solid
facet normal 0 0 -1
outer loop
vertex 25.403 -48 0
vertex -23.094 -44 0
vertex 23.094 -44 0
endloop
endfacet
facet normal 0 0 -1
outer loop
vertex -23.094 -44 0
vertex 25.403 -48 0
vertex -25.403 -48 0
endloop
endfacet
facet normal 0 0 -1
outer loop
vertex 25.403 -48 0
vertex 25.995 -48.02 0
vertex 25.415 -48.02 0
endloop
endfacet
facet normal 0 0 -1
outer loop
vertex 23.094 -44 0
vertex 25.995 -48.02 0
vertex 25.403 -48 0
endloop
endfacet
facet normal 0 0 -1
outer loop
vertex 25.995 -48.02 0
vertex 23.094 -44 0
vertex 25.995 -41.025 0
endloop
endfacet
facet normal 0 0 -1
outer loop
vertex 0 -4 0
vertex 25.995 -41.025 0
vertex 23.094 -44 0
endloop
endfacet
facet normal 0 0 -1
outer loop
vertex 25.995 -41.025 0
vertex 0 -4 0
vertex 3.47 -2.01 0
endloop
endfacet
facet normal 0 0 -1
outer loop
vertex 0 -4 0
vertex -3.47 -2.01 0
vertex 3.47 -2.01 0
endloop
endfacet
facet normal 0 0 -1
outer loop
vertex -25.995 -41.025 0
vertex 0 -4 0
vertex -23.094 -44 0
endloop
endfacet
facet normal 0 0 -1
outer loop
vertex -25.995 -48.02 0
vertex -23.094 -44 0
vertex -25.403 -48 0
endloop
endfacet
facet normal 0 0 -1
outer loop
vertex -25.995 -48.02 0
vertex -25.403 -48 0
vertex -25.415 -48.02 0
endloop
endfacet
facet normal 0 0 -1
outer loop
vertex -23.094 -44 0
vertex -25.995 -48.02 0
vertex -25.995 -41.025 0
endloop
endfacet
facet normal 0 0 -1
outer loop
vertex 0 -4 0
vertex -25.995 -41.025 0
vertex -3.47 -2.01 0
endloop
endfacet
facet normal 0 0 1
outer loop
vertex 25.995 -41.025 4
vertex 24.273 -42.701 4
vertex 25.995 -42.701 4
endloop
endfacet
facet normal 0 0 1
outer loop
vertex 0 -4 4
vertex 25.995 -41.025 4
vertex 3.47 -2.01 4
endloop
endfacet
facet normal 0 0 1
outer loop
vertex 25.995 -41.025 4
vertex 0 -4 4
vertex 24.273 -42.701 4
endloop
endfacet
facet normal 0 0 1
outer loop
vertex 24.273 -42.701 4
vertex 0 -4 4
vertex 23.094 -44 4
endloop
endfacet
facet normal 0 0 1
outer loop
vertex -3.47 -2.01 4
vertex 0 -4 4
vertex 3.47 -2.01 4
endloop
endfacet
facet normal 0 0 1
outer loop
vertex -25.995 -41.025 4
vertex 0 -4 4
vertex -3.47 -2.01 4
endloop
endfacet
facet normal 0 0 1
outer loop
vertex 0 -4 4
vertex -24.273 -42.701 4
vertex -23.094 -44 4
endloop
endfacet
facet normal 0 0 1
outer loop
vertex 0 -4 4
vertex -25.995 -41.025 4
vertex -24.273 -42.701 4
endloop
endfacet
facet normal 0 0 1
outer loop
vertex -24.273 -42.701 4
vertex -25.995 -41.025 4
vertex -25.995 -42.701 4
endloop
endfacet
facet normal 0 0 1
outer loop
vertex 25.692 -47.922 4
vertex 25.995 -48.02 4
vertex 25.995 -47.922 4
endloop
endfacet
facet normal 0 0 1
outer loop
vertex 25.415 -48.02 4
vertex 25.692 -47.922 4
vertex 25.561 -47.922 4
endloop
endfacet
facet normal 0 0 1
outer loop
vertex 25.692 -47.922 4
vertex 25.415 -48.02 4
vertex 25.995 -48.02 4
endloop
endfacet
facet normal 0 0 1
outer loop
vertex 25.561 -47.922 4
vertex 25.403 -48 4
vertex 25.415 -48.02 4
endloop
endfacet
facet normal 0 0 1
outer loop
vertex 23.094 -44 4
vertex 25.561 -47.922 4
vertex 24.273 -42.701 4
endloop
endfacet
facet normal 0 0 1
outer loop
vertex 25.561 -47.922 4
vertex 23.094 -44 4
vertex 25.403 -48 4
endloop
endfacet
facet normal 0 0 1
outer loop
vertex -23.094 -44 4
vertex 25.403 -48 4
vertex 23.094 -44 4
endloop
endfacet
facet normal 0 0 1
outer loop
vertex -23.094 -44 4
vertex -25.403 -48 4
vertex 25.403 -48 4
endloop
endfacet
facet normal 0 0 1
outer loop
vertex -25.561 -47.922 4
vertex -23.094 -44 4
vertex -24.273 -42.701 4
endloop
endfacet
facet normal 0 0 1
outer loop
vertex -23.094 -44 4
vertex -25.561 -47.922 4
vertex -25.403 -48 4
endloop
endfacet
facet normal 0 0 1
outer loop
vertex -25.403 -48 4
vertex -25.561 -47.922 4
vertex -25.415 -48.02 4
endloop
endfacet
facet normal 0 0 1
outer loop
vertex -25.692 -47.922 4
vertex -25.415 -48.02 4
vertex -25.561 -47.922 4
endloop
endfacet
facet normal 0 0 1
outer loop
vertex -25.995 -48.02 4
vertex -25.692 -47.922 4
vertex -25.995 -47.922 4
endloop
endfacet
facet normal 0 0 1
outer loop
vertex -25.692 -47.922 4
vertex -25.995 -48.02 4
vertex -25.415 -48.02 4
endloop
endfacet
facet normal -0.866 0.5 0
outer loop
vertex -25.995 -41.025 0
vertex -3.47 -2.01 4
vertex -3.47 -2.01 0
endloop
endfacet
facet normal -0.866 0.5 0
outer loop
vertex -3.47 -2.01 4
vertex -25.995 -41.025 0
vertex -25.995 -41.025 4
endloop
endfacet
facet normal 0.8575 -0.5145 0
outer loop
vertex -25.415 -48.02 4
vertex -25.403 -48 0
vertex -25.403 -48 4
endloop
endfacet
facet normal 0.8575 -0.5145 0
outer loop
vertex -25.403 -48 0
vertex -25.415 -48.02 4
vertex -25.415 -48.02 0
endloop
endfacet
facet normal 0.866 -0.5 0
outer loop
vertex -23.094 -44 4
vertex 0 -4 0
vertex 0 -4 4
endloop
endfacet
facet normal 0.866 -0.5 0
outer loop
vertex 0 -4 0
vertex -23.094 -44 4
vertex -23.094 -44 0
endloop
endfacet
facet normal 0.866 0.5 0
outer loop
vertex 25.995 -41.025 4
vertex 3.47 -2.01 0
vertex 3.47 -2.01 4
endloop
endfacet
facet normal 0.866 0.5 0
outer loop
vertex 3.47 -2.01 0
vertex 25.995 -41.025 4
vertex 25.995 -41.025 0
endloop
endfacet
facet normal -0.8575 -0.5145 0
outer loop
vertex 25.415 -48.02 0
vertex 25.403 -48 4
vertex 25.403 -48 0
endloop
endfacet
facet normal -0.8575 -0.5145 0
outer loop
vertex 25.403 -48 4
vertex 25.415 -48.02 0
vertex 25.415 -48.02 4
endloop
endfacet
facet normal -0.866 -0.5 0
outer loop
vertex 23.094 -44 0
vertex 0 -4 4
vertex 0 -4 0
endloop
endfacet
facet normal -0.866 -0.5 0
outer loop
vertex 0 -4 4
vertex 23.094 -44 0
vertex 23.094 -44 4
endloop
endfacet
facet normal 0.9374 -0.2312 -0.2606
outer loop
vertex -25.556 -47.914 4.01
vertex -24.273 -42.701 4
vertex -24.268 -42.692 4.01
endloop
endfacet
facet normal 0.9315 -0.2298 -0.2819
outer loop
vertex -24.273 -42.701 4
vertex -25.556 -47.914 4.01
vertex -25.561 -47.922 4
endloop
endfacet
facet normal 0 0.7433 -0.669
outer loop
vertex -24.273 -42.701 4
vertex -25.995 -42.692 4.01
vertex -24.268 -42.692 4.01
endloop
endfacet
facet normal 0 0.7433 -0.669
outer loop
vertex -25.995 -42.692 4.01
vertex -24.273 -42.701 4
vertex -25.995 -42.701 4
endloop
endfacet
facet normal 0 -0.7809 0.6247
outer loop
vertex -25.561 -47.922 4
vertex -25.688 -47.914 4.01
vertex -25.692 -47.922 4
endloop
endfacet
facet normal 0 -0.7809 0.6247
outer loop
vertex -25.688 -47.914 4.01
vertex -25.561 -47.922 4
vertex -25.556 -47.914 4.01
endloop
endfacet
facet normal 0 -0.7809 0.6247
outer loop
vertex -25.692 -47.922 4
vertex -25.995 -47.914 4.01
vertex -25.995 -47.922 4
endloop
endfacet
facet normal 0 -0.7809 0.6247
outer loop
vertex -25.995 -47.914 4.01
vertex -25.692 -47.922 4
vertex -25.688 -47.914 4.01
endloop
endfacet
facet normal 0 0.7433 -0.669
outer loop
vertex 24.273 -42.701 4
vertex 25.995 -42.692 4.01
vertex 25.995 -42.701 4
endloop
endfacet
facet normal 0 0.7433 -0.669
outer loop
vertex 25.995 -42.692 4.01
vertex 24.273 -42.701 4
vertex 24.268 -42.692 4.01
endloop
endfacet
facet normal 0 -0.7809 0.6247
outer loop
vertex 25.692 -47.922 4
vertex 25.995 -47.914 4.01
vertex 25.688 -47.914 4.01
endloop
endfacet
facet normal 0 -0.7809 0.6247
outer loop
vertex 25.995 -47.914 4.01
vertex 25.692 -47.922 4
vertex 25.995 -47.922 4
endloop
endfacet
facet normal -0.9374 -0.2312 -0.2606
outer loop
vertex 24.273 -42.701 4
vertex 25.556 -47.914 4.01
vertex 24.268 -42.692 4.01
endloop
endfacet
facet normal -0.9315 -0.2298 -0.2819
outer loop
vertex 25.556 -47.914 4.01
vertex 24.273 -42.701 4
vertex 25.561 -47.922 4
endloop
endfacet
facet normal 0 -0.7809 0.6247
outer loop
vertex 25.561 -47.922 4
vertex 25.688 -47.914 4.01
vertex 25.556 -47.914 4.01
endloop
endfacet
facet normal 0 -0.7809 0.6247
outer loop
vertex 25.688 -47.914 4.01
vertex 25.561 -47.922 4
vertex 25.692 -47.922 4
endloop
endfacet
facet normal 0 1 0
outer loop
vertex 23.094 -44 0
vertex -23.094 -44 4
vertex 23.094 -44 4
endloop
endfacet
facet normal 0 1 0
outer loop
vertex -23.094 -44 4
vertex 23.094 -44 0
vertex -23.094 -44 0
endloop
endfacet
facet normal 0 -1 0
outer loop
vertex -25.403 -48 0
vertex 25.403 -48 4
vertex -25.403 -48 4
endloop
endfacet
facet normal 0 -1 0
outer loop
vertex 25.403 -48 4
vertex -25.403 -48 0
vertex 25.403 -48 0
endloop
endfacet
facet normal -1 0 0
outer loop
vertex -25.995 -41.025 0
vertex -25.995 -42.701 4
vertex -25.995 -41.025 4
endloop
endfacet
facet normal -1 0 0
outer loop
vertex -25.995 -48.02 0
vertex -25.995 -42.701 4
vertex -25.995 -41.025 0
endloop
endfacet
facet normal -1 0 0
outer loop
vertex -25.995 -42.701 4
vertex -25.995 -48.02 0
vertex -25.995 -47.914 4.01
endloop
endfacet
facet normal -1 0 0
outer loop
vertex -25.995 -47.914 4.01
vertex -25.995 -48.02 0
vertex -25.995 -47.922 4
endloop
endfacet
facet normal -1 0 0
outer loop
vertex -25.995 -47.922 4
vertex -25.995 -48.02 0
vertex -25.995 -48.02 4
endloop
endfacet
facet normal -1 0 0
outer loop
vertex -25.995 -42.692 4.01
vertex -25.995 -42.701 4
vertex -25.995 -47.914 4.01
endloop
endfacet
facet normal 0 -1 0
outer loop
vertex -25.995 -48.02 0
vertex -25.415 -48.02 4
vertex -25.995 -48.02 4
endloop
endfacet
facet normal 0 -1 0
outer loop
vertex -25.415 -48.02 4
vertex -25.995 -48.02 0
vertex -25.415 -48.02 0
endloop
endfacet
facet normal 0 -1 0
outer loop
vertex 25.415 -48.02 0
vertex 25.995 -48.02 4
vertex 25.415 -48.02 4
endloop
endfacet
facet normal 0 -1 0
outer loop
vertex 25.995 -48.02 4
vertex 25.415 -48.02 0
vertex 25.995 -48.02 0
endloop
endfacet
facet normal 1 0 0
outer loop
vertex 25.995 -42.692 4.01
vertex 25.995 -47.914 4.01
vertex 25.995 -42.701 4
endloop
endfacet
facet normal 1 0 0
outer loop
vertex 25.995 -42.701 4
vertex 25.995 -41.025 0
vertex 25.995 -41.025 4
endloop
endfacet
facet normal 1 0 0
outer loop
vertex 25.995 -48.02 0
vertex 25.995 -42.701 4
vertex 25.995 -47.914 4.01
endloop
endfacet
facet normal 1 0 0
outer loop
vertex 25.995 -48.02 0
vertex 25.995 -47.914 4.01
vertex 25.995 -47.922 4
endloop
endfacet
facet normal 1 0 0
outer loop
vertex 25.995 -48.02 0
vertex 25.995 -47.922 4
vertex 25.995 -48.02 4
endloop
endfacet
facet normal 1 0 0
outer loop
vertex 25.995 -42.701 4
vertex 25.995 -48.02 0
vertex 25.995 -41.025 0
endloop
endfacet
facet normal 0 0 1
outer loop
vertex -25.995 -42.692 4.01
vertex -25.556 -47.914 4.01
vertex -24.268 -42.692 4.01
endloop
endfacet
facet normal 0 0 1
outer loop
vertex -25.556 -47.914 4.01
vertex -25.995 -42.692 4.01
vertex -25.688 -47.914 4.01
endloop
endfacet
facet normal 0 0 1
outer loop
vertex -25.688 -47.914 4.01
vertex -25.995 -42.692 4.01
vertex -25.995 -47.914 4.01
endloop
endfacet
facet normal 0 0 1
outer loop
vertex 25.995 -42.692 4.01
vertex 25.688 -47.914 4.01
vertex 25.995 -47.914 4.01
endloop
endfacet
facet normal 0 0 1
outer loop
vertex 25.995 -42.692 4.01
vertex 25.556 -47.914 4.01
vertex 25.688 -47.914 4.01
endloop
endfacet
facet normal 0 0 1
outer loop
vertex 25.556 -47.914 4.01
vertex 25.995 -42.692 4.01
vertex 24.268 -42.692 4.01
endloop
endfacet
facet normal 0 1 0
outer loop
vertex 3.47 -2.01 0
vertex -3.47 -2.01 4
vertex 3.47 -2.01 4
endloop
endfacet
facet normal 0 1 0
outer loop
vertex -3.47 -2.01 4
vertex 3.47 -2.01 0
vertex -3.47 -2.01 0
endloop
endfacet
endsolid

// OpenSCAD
// file: ../lib/torus.scad
module torus(
outer_diameter,
circle_diameter
) {
    rotate_extrude(convexity = 4)
    translate([(outer_diameter-circle_diameter)/2, 0, 0])
    circle(d=circle_diameter, $fn=$fn/3);
}
// file: ../rocket-bottom.scad
use <lib/centered_cube.scad>
use <lib/torus.scad>

translate([0,0,-1.1])
ccube([93,93,1]);

module nozzle() {
    color([.2,.2,.2])
    cylinder(d1=40, d2=16+(40-16)*((40-16)/40), h=16);

    color([.35,.35,.35])
    translate([0,0,16])
    torus(34, 5);

    color([.5,.5,.5])
    translate([0,0,16])
    cylinder(d1=16+(40-16)*((40-16)/40), d2=16, h=40-16);
}


module nozzle_and_fin() {
    nozzle();

    color([.8, .8, .8])
    translate([0,0,41.6]) {
        intersection() {
            cylinder(d=38, h=16);
            translate([0,0,-1])
            ccube([50,50,20], centered=[0,1,0]);
        }
        rotate([0,0,180])
        ccube([4,38,16], centered=[0,1,0]);
    }
    
    color([0,0,0])
    translate([0,0,40])
    ccube([16, 16, 8], centered=[1,1,0]);


    // fin mount
    color([1,1,1])
    translate([0,0,57.6])
    resize([38,32,64])
    cylinder(d1=32, d2=16, h=64);

    // fin
    color([1,1,1])
    translate([18,0,65.6])
    rotate([90,0,0])
    translate([0,0,-0.8])
    linear_extrude(height=1.6) {
        polygon(points=[
            [0,0],
            [3,-8],
            [32, -22],
            [32, -6],
            [0, 24]
        ]);
    }
}

module rocket_bottom() {
    nozzle();
    color([.8, .8, .8])
    translate([0,0,40])
    cylinder(d=16, h=18);

    for (r = [0:1:3]) {
        rotate([0,0,r*90])
        translate([42.5,0,0])
        nozzle_and_fin();
    }
    
    // bottom of fuel tank
    color([1,1,1])
    translate([0,0,58])
    cylinder(d=80, h=32);
}

rocket_bottom();
// file: ../lib/lego_brick_builder.scad
/*

 Basic Lego brick builder module for OpenScad by Jorg Janssen 2013 (CC BY-NC 3.0) 
 To use this in your own projects add:

 use <path_to_this_file/lego_brick_builder.scad>
 brick (length, width, height [,smooth]);

 Length and width are in standard lego brick dimensions. 
 Height is in flat brick heights, so for a normal lego brick height = 3.
 Add optional smooth = true for a brick without studs. 
 Use height = 0 to just put studs/knobs on top of other things.

 */
$fn = 50;
 
 // this is it:
brick(5,3,3);


// and this is how it's done:

FLU = 1.6; // Fundamental Lego Unit = 1.6 mm

BRICK_WIDTH = 5*FLU; // basic brick width
BRICK_HEIGHT = 6*FLU; // basic brick height
PLATE_HEIGHT = 2*FLU; // basic plate height
WALL_THICKNESS = FLU; // outer wall of the brick
STUD_RADIUS = 1.5*FLU; // studs are the small cylinders on top of the brick with the lego logo ('nopje' in Dutch)
STUD_HEIGHT = FLU; 
ANTI_STUD_RADIUS = 0.5*4.07*FLU;  // an anti stud is the hollow cylinder inside bricks that have length > 1 and width > 1
PIN_RADIUS = FLU; // a pin is the small cylinder inside bricks that have length = 1 or width = 1
SUPPORT_THICKNESS = 0.254; // support is the thin surface between anti studs, pins and walls, your printer might not print this thin, try thicker!
EDGE = 0.254; // this is the width and height of the bottom line edge of smooth bricks
CORRECTION = 0.1; // addition to each size, to make sure all parts connect by moving them a little inside each other

module brick(length = 4, width = 2, height = 3, smooth = false){

	// brick shell
	difference(){
		cube(size = [length*BRICK_WIDTH,width*BRICK_WIDTH,height*PLATE_HEIGHT]);
		translate([WALL_THICKNESS,WALL_THICKNESS,-WALL_THICKNESS])
		union(){
			cube(size = [length*BRICK_WIDTH-2*WALL_THICKNESS,width*BRICK_WIDTH-2*WALL_THICKNESS,height*PLATE_HEIGHT]);
			// stud inner holes, radius = pin radius
			if (!smooth) {
				translate([STUD_RADIUS+WALL_THICKNESS,STUD_RADIUS+WALL_THICKNESS,height*PLATE_HEIGHT])
				for (y = [0:width-1]){
					for (x = [0:length-1]){
						translate ([x*BRICK_WIDTH-WALL_THICKNESS,y*BRICK_WIDTH-WALL_THICKNESS,-CORRECTION])
						cylinder(h=WALL_THICKNESS+2*CORRECTION,r=PIN_RADIUS);
					}
				}
			}
			// small bottom line edge for smooth bricks
			else {
				translate([-WALL_THICKNESS-CORRECTION,-WALL_THICKNESS-CORRECTION,FLU-CORRECTION]) 
				difference() {
					cube([length*BRICK_WIDTH+2*CORRECTION,width*BRICK_WIDTH+2*CORRECTION,EDGE+CORRECTION]);
					translate([EDGE+CORRECTION,EDGE+CORRECTION,-CORRECTION])
					cube([length*BRICK_WIDTH-2*EDGE,width*BRICK_WIDTH-2*EDGE,EDGE+3*CORRECTION]); 
				}
			}
		}
	}
	// Studs
	if(!smooth){
		translate([STUD_RADIUS+WALL_THICKNESS,STUD_RADIUS+WALL_THICKNESS,height*PLATE_HEIGHT])
		for (y = [0:width-1]){
			for (x = [0:length-1]){
				translate ([x*BRICK_WIDTH,y*BRICK_WIDTH,-CORRECTION])
				difference(){
					cylinder(h=STUD_HEIGHT+CORRECTION, r=STUD_RADIUS);
					// Stud inner holes
					translate([0,0,-CORRECTION])
					cylinder(h=0.5*STUD_HEIGHT+CORRECTION,r=PIN_RADIUS);
				}
				// tech logo - disable this if your printer isn't capable of printing this small
				if ( length > width){
					translate([x*BRICK_WIDTH+0.8,y*BRICK_WIDTH-1.9,STUD_HEIGHT-CORRECTION])
					resize([1.2*1.7,2.2*1.7,0.254+CORRECTION])
					rotate(a=[0,0,90])
					import("tech.stl");
				}
				else {
					translate([x*BRICK_WIDTH-1.9,y*BRICK_WIDTH-0.8,STUD_HEIGHT-CORRECTION])
					resize([2.2*1.7,1.2*1.7,0.254+CORRECTION])
					import("tech.stl");				
				}				
				/* 
				// Alternative 2-square logo
				translate ([x*BRICK_WIDTH+CORRECTION,y*BRICK_WIDTH-CORRECTION,STUD_HEIGHT-CORRECTION])		
				cube([1,1,2*CORRECTION]);
				translate ([x*BRICK_WIDTH-0.9,y*BRICK_WIDTH-0.9,STUD_HEIGHT-CORRECTION])		
				cube([1,1,0.3]);
				*/				
			}
		}
	}
	// Pins x
	if (width == 1 && length > 1) {	
			for (x = [1:length-1]){
				translate([x*BRICK_WIDTH,0.5*BRICK_WIDTH,0])
				cylinder(h=height*PLATE_HEIGHT-WALL_THICKNESS+CORRECTION,r=PIN_RADIUS);
				// Supports
				if (height > 1) {
				translate([x*BRICK_WIDTH-0.5*SUPPORT_THICKNESS,CORRECTION,STUD_HEIGHT])
				cube(size=[SUPPORT_THICKNESS,BRICK_WIDTH-2*CORRECTION,height*PLATE_HEIGHT-STUD_HEIGHT-WALL_THICKNESS+CORRECTION]);
			}
		}
	}
	// Pins y
	if (length == 1 && width > 1) {	
			for (y = [1:width-1]){
			translate([0.5*BRICK_WIDTH,y*BRICK_WIDTH,0])
			cylinder(h=height*PLATE_HEIGHT-WALL_THICKNESS+CORRECTION,r=PIN_RADIUS);
			// Supports
			if (height > 1) {
			translate([CORRECTION,y*BRICK_WIDTH-0.5*SUPPORT_THICKNESS,STUD_HEIGHT])
			cube(size=[BRICK_WIDTH-2*CORRECTION,SUPPORT_THICKNESS,height*PLATE_HEIGHT-STUD_HEIGHT-WALL_THICKNESS+CORRECTION]);}
			
		}
	}
	// Anti Studs
	if (width > 1 && length > 1){
		difference(){
			union(){
				for(y = [1:width-1]){
					for(x = [1:length-1]){
						// anti studs
						translate([x*BRICK_WIDTH,y*BRICK_WIDTH,0])
						cylinder (h=height*PLATE_HEIGHT-WALL_THICKNESS+CORRECTION, r = ANTI_STUD_RADIUS);
						// Supports
						if (height > 1){
							// Support x
							if (x%2 == 0 && (length%2 == 0 || length%4 == 1 && x<length/2 || length%4 == 3 && x>length/2) || x%2 == 1 && (length%4 == 3 && x<length/2 || length%4 == 1 && x>length/2)) {
								translate([BRICK_WIDTH*x-0.5*SUPPORT_THICKNESS,y*BRICK_WIDTH-BRICK_WIDTH+WALL_THICKNESS-CORRECTION,STUD_HEIGHT])
								cube(size=[SUPPORT_THICKNESS,2*BRICK_WIDTH-2*WALL_THICKNESS,height*PLATE_HEIGHT-STUD_HEIGHT-WALL_THICKNESS+CORRECTION]);
							}
							// Supports y							
							if (y%2 == 0 && (width%2 == 0 || width%4 == 1 && y<width/2 || width%4 == 3 && y>width/2) || y%2 == 1 && (width%4 == 3 && y<width/2 || width%4 == 1 && y>width/2)) {
								translate([x*BRICK_WIDTH-BRICK_WIDTH+WALL_THICKNESS-CORRECTION,BRICK_WIDTH*y-0.5*SUPPORT_THICKNESS,STUD_HEIGHT])
								cube(size=[2*BRICK_WIDTH-2*WALL_THICKNESS,SUPPORT_THICKNESS,height*PLATE_HEIGHT-STUD_HEIGHT-WALL_THICKNESS+CORRECTION]);
							}
						}
					}
				}
			}
			union(){
				for(y = [1:width-1]){
					for(x = [1:length-1]){
						// hollow anti studs
						translate([x*BRICK_WIDTH,y*BRICK_WIDTH,-WALL_THICKNESS])
						cylinder (h=height*PLATE_HEIGHT, r = STUD_RADIUS);				
					}
				}
			}
		}		
	}
}
	
// file: ../lib/centered_cube.scad
module ccube(size, centered=[1,1,1]) {
    centered_cube(size, centered);
}

module centered_cube(size, centered=[1,1,1]) {
    translate([(-size[0]/2)*centered[0], (-size[1]/2)*centered[1], (-size[2]/2)*centered[2]])
    cube(size);
}
// main file
use <../shelf.scad>
use <../lib/centered_cube.scad>

g_t=3;

translate([0,0,30])
rotate([90, 0, 0])
intersection() {
    intersection() {
        translate([0,0,-150])
        rotate([0,180,0])
        gantry_layer1();
        
        translate([0,0,-g_t/2])
        ccube([60,60,50], centered=[1,1,0]);
    }
    
    translate([0,-1+0.01,2.01])
    ccube([52-0.01,50,46.01], centered=[1,3,0]);
}
